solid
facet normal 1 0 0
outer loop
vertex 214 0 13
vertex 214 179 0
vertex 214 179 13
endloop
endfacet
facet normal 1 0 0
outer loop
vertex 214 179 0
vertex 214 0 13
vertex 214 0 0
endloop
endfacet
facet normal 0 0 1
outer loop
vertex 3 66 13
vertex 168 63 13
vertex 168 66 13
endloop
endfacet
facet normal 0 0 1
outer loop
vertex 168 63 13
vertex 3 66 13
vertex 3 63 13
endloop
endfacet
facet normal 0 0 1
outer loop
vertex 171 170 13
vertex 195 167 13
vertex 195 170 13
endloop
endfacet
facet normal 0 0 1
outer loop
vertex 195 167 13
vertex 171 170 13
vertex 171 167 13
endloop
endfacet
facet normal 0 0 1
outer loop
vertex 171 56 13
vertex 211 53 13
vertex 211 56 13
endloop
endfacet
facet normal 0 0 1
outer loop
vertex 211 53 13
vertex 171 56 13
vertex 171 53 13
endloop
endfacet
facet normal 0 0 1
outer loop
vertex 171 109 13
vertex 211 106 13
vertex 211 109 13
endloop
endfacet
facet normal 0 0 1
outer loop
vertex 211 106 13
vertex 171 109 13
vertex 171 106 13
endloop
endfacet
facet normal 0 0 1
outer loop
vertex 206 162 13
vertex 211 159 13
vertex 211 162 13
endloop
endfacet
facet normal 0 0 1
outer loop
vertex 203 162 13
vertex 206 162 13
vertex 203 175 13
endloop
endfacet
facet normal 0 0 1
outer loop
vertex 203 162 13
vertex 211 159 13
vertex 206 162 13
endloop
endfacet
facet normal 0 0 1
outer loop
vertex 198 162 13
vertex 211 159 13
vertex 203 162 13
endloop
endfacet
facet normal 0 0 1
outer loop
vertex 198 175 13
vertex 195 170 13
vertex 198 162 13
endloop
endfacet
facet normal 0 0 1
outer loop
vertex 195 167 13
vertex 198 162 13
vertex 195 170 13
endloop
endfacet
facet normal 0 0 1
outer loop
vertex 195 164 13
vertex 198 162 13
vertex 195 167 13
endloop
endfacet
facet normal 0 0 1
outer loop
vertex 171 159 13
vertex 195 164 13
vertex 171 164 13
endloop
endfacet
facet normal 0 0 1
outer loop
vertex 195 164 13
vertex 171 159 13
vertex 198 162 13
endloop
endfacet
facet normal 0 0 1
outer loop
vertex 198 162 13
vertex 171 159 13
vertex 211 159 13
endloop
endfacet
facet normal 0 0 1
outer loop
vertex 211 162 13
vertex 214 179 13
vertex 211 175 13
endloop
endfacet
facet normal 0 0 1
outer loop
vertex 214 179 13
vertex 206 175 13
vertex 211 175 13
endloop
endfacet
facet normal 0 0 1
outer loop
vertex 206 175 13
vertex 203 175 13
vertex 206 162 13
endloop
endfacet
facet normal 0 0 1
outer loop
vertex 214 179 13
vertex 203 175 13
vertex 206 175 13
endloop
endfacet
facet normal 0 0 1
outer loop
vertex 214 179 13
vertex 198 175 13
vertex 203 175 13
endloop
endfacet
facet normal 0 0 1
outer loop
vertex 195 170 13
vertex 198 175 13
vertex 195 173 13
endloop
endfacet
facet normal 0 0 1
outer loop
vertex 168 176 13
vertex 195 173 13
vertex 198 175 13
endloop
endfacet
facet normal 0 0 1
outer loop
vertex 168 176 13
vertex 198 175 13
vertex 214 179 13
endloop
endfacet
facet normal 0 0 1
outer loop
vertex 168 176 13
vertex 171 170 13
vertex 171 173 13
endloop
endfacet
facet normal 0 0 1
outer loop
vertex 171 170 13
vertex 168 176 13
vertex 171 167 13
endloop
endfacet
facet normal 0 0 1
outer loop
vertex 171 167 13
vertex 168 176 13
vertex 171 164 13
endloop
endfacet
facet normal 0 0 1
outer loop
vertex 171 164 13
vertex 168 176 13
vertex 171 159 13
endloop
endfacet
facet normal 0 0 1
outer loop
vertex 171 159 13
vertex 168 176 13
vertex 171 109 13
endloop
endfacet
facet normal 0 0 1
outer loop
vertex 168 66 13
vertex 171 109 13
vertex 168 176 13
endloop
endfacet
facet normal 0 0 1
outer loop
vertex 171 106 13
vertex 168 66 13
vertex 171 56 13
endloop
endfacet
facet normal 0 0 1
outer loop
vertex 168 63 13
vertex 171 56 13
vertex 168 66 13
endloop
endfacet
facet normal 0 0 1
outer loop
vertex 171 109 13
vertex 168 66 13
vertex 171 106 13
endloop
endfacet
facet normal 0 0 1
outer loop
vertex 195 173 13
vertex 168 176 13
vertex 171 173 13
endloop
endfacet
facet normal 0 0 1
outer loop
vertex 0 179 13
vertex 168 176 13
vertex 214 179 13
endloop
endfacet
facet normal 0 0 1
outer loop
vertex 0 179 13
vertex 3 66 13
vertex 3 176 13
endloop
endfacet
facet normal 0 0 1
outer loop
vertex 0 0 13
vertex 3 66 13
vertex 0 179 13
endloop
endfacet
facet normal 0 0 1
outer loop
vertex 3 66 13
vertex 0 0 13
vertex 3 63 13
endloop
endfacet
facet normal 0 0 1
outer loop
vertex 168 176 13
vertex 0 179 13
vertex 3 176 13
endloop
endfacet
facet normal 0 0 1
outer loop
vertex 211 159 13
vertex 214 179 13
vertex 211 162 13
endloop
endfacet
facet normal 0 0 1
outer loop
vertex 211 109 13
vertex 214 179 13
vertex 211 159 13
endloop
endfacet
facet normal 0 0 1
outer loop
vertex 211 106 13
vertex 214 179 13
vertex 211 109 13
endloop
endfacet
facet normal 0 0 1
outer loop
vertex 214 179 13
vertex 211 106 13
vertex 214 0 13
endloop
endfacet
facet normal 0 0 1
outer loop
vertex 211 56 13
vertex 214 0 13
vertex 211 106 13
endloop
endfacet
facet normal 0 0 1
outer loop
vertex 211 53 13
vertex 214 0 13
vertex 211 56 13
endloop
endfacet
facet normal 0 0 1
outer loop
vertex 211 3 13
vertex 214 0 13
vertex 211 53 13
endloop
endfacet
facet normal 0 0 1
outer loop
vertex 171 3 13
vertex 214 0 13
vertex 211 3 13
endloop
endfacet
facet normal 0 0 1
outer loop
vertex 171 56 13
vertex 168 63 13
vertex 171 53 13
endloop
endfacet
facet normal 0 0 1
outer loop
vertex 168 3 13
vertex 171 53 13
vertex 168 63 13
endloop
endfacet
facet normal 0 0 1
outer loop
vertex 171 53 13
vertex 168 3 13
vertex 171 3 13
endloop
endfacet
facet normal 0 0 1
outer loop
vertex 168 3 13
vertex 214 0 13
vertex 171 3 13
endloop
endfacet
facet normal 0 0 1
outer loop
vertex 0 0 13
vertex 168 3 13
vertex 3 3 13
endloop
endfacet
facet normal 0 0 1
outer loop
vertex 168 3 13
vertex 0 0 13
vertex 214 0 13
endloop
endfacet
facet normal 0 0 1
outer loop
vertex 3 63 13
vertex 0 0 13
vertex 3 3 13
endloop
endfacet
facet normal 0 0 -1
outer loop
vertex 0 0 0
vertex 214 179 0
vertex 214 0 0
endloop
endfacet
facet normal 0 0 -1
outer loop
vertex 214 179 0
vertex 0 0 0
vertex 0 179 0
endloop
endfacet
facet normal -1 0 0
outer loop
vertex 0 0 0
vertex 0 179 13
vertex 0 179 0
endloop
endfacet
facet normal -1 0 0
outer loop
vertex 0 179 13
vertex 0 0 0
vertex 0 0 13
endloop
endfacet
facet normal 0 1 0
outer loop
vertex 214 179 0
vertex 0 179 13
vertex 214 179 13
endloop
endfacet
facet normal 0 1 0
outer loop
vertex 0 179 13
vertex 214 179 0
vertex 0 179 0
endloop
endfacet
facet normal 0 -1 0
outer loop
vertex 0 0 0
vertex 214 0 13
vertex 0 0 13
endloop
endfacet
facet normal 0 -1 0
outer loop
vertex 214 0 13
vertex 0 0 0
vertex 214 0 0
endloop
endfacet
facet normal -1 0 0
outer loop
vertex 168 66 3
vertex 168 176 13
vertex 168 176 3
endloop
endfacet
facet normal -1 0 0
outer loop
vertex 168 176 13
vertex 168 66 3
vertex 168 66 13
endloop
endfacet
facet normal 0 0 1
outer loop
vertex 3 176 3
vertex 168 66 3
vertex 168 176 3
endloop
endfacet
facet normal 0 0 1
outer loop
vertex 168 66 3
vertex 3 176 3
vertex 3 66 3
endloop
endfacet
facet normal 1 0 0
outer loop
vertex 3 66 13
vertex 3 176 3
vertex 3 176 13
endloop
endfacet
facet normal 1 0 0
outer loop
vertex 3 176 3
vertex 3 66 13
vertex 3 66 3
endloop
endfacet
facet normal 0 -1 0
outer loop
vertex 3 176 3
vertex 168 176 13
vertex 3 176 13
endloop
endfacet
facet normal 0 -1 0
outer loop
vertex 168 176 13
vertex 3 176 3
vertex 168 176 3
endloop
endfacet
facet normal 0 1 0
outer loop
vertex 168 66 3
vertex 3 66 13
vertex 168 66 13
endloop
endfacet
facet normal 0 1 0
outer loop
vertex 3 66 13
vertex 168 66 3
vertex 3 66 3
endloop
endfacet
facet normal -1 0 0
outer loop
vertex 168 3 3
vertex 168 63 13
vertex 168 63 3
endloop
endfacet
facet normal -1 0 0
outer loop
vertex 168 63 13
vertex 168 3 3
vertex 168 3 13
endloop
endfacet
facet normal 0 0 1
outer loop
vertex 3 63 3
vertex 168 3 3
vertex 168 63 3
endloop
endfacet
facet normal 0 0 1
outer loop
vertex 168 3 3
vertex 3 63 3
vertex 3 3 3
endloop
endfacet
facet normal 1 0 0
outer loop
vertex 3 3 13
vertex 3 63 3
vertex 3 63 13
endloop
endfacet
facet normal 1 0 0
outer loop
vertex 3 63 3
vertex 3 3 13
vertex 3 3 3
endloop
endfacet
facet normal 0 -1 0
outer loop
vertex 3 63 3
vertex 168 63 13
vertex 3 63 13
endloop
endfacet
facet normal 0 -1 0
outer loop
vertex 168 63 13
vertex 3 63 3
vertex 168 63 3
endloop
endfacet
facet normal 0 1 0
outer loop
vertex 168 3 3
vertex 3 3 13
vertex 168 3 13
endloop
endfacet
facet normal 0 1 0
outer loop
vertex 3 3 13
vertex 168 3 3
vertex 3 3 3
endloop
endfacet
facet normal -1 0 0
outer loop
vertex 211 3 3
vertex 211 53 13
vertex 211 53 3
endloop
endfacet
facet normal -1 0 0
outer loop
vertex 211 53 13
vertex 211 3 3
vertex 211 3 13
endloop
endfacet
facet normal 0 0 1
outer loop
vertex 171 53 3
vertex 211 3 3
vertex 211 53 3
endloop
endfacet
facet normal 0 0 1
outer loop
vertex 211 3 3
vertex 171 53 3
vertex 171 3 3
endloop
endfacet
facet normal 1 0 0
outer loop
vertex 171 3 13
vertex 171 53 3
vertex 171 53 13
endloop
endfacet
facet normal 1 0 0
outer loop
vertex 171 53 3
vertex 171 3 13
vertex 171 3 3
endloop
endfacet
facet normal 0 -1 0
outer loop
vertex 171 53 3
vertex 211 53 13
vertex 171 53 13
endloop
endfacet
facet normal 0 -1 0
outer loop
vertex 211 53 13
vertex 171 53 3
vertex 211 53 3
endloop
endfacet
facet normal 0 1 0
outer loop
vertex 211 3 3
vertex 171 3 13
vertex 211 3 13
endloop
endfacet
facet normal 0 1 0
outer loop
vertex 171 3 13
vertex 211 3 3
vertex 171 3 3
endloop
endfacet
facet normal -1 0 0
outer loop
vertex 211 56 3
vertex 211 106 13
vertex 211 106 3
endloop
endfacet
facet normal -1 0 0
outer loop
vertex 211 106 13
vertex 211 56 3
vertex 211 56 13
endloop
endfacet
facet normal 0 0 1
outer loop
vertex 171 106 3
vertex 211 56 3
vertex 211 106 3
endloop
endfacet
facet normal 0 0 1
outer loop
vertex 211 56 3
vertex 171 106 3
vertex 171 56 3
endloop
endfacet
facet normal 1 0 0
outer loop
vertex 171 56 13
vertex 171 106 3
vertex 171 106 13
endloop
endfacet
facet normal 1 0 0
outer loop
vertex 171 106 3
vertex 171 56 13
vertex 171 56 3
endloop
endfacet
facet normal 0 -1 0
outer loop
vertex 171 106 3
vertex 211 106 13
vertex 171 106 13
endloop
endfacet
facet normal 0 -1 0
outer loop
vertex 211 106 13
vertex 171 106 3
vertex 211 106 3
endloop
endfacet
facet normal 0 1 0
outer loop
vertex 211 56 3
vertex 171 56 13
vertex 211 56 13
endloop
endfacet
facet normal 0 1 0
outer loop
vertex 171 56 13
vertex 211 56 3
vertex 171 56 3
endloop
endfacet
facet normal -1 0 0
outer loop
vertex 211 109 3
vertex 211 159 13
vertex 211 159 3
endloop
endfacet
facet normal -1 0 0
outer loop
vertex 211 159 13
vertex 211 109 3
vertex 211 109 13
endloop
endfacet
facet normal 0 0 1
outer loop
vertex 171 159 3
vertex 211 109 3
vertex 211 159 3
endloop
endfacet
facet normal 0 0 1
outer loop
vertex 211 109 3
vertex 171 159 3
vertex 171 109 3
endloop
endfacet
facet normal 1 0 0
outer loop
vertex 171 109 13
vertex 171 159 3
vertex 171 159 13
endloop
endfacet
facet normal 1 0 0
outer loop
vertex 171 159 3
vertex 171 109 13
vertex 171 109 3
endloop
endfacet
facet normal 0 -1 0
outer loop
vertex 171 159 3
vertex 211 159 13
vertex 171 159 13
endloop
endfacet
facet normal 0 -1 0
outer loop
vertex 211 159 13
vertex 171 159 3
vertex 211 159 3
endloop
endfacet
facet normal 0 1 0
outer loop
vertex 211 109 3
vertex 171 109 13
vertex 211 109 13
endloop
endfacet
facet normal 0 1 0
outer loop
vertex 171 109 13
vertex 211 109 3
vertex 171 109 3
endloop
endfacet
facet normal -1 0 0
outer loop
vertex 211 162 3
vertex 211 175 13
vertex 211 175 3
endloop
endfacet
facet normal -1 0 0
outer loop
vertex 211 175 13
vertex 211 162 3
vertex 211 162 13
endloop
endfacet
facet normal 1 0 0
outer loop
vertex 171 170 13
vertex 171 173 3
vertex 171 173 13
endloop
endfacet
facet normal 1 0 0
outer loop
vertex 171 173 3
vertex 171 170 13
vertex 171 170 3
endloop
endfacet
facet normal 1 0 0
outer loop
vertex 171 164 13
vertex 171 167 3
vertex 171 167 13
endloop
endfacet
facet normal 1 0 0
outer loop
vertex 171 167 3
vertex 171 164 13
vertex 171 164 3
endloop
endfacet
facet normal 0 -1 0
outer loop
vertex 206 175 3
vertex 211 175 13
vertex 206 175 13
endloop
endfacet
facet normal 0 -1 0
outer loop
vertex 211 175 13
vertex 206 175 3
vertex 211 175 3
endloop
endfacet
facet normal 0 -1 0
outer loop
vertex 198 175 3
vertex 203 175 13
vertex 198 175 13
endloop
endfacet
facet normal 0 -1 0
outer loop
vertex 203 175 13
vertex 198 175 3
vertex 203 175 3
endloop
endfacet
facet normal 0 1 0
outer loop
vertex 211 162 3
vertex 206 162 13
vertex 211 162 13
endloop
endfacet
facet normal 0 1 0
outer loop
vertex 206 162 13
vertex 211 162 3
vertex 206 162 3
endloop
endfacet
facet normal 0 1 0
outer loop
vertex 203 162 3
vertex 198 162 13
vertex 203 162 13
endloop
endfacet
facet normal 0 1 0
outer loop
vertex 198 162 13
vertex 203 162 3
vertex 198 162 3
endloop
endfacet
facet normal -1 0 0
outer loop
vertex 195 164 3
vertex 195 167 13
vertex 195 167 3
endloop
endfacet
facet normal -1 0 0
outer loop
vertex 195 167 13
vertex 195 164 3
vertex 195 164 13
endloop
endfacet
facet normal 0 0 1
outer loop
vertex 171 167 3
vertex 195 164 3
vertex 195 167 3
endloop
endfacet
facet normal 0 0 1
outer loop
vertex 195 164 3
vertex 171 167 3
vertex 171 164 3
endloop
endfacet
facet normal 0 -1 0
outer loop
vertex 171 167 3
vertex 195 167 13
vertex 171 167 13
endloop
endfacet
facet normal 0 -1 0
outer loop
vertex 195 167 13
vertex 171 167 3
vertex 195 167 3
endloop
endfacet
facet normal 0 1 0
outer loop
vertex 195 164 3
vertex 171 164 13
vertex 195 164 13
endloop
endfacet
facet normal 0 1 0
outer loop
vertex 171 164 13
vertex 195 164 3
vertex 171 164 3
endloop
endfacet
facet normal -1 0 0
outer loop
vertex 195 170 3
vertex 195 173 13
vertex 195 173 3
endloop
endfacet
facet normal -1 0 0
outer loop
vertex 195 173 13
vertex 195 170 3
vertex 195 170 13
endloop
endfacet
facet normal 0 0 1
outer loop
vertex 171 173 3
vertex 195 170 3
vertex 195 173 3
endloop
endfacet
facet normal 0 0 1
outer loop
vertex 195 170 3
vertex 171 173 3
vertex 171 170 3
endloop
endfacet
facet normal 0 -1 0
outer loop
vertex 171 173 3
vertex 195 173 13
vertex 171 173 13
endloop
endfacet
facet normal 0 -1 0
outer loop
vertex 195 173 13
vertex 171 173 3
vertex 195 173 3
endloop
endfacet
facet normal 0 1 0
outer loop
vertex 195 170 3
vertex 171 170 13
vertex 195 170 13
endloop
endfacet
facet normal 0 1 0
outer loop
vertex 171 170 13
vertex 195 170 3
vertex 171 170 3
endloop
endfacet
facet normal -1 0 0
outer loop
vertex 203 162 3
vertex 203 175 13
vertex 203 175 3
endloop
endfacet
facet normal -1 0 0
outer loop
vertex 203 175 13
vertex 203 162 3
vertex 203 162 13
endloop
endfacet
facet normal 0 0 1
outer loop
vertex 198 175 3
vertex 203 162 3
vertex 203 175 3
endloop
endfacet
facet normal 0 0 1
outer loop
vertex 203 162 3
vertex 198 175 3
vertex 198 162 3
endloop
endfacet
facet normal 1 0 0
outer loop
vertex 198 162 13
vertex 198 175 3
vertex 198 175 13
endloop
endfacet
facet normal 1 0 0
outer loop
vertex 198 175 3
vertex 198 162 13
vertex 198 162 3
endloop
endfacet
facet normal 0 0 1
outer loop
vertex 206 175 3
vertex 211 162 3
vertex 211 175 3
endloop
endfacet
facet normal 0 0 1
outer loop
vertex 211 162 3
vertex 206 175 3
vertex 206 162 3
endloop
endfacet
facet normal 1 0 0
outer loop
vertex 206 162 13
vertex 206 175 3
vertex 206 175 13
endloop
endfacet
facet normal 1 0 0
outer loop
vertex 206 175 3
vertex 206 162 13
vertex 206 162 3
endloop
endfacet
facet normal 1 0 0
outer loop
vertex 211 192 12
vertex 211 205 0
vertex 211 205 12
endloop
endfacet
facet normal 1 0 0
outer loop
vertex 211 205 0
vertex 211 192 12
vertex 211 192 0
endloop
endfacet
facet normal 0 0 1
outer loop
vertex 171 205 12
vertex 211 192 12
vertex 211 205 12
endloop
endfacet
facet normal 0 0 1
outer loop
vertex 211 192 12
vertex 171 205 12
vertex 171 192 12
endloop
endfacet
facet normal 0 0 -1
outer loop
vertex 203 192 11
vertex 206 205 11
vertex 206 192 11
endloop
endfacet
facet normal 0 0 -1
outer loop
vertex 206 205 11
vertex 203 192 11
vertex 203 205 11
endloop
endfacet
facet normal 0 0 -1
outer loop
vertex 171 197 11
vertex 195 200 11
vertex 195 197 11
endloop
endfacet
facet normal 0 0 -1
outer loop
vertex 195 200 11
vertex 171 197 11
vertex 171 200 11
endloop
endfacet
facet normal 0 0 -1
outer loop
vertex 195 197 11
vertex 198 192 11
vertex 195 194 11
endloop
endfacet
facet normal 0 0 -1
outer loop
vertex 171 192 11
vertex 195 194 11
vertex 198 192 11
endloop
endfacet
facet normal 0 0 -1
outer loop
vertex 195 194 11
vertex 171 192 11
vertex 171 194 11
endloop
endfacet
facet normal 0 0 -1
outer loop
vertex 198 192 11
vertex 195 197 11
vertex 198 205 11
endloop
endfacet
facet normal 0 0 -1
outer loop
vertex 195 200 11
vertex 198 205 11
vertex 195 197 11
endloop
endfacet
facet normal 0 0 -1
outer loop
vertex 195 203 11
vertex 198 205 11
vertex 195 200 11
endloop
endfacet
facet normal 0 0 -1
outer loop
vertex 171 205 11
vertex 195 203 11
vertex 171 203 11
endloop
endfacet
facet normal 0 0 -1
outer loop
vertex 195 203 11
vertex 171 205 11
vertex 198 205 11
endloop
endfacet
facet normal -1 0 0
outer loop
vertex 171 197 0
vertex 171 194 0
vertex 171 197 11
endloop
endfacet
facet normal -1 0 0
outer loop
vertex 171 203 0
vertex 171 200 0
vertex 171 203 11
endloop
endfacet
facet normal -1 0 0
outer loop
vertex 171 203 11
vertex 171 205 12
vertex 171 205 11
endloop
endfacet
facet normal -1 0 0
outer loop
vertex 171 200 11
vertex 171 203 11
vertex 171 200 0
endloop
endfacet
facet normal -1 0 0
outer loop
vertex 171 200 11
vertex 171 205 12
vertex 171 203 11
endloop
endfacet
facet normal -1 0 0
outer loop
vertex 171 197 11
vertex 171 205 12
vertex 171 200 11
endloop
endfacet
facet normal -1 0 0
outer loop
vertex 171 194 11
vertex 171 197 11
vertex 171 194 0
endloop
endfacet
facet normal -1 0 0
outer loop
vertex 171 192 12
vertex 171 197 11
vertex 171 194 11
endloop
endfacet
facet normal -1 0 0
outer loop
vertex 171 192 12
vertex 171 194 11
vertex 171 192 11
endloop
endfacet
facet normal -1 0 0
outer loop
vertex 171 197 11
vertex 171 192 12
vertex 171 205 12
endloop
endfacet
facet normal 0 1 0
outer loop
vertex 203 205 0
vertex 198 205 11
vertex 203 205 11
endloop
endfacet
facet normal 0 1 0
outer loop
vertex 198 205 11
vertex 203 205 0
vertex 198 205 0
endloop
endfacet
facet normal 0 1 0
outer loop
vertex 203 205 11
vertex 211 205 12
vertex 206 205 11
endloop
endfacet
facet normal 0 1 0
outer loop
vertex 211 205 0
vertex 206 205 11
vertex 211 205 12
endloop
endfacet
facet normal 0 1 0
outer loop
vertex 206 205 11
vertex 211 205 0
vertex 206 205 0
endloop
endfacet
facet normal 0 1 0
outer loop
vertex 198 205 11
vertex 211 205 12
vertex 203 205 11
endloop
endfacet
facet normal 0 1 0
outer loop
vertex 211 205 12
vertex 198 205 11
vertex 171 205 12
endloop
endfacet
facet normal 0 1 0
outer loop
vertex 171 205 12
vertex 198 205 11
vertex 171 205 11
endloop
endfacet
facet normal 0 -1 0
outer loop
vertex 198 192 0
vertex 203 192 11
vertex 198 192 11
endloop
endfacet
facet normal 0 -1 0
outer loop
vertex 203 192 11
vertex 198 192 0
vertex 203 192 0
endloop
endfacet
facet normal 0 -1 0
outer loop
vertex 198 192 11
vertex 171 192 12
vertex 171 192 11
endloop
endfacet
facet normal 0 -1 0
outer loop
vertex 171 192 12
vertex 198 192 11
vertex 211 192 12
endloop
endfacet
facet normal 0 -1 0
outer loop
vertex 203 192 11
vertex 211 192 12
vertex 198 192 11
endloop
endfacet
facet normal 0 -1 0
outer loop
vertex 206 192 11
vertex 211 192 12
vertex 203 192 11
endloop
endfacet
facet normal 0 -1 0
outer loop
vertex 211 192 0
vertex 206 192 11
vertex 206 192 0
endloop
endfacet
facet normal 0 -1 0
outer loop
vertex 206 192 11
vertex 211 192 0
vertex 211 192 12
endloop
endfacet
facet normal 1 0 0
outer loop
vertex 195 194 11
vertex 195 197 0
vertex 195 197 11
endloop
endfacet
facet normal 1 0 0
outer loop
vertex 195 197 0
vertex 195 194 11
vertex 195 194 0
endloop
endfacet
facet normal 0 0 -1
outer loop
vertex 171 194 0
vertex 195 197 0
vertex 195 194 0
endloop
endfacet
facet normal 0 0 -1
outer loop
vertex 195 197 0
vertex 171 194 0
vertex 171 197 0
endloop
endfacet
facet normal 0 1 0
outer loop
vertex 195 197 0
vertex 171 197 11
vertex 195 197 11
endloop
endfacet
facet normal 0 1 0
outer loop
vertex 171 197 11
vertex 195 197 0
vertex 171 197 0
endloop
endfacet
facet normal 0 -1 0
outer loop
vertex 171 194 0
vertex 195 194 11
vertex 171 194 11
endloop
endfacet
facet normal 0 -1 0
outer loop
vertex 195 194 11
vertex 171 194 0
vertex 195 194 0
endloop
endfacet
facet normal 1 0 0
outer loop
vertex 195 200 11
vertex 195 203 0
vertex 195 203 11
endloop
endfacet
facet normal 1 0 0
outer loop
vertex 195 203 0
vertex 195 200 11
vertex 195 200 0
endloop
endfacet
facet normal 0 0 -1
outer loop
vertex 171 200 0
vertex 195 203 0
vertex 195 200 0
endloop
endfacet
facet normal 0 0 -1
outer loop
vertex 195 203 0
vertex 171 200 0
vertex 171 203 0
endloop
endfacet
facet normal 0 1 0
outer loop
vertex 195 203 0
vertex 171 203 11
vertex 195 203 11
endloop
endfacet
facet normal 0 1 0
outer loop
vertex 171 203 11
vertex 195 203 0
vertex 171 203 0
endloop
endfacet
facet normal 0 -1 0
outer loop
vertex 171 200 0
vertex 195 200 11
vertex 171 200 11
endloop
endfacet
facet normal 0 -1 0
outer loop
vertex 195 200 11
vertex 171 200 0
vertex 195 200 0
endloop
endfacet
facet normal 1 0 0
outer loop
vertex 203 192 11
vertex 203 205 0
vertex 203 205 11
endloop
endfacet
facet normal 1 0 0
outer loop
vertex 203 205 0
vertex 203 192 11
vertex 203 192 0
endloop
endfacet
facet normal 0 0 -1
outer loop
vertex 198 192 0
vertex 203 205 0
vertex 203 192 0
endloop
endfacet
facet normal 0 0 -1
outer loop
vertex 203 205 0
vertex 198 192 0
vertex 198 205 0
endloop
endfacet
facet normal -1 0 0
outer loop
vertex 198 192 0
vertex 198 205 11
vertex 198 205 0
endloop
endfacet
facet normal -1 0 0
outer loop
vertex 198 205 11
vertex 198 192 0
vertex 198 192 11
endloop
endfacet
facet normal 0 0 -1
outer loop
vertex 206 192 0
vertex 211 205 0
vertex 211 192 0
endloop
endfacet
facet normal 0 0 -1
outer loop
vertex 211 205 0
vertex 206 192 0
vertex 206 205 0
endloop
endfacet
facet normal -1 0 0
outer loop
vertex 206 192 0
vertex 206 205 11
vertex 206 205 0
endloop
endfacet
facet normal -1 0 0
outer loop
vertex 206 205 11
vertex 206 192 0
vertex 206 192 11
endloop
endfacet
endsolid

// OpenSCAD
/* vim:ts=4
 * Description: Holder for two breadboards and SOC/SBC
 * Author:      martinak
 * Version:     0
 * Dimensions:  X,Y,Z
 */

// Storage Cap (SC): 2x USB; 2xSD
module Cap () {

    union () {
        // Top Plate (TP): 
        translate ([171, 162, 14])
            cube( [40, 13, 1]);

        // SD Card 1 (SD1): [24, 2.1, *]
        translate ([171, 164, 3])
            cube ([24, 3, 11]);

        // SD Card 2 (SD2): [24, 2.1, *]
        translate ([171, 170, 3])
            cube ([24, 3, 11]);

        // translate() -> shift usb block over. 
        // USB 1 (USB1): [12.2, 4.6, *]
        translate ([198, 162, 3])
            cube ([5, 13, 11]);

        // USB 2 (USB2): [12.2, 4.6, *]
        translate ([206, 162, 3])
            cube ([5, 13, 11]);
    }
}


// Body: 2x Bread Board; 2x SBC/SOC; 2x SD Card; 2x USB
module Body () {

    // (SH - BB - PI - PT1 - PT2 - PT3) - USB
    difference () {

        // (SH - BB - PI - PT1 - PT2) - PT3
        difference () {

            // (SH -BB - PI - PT1) - PT2
            difference () {
    
                // (SH -BB -PI - PT1) - PT2
                difference () {
    
                    // (SH - BB - PI) - PT1
                    difference () {

                        // (SH - BB) - PI
                        difference () {

                            // Shell - BB
                            difference () {
                                // Shell (Sh): [223, 200, 13]
                                // x: +9 for walls/divider; y: flush w/ BB; z: +3 for floor
                                cube ([214, 179, 13]);
    
                                // Bread Board (BB): [163.7, 54.6, 9.7] + y -> [165, 110, 10] 
                                translate ([3, 66, 3])
                                    cube ([165, 110, 11]);

                            } // end Shell - BB
    
                            translate ([3, 3, 3])
                                cube ([165, 60, 13]);
                        } // end (SH - BB) - PI

                        // Parts Tray 1 (PT1): [40, 50, 10]
                        translate ([171, 3, 3])
                            cube ([40, 50, 11]);

                    } // end (SH - BB - PI) - PT1

                    // Parts Tray 2 (PT2): [40, 50, 10]
                    translate ([171, 56, 3])
                        cube ([40, 50, 11]);

                } // end (SH -BB -PI - PT1) - PT2

            } // end (SH - BB - PI - PT1 - PT2) - PT3
    
            // Parts Tray 3 (PT3): [40, 50, 10]
            translate ([171, 109, 3])
                cube ([40, 50, 11]);
        }
    }
}

// Build body
difference () {
    Body ();
    Cap ();
}

// Build cap
translate([0, 30, -3])
    Cap ();
